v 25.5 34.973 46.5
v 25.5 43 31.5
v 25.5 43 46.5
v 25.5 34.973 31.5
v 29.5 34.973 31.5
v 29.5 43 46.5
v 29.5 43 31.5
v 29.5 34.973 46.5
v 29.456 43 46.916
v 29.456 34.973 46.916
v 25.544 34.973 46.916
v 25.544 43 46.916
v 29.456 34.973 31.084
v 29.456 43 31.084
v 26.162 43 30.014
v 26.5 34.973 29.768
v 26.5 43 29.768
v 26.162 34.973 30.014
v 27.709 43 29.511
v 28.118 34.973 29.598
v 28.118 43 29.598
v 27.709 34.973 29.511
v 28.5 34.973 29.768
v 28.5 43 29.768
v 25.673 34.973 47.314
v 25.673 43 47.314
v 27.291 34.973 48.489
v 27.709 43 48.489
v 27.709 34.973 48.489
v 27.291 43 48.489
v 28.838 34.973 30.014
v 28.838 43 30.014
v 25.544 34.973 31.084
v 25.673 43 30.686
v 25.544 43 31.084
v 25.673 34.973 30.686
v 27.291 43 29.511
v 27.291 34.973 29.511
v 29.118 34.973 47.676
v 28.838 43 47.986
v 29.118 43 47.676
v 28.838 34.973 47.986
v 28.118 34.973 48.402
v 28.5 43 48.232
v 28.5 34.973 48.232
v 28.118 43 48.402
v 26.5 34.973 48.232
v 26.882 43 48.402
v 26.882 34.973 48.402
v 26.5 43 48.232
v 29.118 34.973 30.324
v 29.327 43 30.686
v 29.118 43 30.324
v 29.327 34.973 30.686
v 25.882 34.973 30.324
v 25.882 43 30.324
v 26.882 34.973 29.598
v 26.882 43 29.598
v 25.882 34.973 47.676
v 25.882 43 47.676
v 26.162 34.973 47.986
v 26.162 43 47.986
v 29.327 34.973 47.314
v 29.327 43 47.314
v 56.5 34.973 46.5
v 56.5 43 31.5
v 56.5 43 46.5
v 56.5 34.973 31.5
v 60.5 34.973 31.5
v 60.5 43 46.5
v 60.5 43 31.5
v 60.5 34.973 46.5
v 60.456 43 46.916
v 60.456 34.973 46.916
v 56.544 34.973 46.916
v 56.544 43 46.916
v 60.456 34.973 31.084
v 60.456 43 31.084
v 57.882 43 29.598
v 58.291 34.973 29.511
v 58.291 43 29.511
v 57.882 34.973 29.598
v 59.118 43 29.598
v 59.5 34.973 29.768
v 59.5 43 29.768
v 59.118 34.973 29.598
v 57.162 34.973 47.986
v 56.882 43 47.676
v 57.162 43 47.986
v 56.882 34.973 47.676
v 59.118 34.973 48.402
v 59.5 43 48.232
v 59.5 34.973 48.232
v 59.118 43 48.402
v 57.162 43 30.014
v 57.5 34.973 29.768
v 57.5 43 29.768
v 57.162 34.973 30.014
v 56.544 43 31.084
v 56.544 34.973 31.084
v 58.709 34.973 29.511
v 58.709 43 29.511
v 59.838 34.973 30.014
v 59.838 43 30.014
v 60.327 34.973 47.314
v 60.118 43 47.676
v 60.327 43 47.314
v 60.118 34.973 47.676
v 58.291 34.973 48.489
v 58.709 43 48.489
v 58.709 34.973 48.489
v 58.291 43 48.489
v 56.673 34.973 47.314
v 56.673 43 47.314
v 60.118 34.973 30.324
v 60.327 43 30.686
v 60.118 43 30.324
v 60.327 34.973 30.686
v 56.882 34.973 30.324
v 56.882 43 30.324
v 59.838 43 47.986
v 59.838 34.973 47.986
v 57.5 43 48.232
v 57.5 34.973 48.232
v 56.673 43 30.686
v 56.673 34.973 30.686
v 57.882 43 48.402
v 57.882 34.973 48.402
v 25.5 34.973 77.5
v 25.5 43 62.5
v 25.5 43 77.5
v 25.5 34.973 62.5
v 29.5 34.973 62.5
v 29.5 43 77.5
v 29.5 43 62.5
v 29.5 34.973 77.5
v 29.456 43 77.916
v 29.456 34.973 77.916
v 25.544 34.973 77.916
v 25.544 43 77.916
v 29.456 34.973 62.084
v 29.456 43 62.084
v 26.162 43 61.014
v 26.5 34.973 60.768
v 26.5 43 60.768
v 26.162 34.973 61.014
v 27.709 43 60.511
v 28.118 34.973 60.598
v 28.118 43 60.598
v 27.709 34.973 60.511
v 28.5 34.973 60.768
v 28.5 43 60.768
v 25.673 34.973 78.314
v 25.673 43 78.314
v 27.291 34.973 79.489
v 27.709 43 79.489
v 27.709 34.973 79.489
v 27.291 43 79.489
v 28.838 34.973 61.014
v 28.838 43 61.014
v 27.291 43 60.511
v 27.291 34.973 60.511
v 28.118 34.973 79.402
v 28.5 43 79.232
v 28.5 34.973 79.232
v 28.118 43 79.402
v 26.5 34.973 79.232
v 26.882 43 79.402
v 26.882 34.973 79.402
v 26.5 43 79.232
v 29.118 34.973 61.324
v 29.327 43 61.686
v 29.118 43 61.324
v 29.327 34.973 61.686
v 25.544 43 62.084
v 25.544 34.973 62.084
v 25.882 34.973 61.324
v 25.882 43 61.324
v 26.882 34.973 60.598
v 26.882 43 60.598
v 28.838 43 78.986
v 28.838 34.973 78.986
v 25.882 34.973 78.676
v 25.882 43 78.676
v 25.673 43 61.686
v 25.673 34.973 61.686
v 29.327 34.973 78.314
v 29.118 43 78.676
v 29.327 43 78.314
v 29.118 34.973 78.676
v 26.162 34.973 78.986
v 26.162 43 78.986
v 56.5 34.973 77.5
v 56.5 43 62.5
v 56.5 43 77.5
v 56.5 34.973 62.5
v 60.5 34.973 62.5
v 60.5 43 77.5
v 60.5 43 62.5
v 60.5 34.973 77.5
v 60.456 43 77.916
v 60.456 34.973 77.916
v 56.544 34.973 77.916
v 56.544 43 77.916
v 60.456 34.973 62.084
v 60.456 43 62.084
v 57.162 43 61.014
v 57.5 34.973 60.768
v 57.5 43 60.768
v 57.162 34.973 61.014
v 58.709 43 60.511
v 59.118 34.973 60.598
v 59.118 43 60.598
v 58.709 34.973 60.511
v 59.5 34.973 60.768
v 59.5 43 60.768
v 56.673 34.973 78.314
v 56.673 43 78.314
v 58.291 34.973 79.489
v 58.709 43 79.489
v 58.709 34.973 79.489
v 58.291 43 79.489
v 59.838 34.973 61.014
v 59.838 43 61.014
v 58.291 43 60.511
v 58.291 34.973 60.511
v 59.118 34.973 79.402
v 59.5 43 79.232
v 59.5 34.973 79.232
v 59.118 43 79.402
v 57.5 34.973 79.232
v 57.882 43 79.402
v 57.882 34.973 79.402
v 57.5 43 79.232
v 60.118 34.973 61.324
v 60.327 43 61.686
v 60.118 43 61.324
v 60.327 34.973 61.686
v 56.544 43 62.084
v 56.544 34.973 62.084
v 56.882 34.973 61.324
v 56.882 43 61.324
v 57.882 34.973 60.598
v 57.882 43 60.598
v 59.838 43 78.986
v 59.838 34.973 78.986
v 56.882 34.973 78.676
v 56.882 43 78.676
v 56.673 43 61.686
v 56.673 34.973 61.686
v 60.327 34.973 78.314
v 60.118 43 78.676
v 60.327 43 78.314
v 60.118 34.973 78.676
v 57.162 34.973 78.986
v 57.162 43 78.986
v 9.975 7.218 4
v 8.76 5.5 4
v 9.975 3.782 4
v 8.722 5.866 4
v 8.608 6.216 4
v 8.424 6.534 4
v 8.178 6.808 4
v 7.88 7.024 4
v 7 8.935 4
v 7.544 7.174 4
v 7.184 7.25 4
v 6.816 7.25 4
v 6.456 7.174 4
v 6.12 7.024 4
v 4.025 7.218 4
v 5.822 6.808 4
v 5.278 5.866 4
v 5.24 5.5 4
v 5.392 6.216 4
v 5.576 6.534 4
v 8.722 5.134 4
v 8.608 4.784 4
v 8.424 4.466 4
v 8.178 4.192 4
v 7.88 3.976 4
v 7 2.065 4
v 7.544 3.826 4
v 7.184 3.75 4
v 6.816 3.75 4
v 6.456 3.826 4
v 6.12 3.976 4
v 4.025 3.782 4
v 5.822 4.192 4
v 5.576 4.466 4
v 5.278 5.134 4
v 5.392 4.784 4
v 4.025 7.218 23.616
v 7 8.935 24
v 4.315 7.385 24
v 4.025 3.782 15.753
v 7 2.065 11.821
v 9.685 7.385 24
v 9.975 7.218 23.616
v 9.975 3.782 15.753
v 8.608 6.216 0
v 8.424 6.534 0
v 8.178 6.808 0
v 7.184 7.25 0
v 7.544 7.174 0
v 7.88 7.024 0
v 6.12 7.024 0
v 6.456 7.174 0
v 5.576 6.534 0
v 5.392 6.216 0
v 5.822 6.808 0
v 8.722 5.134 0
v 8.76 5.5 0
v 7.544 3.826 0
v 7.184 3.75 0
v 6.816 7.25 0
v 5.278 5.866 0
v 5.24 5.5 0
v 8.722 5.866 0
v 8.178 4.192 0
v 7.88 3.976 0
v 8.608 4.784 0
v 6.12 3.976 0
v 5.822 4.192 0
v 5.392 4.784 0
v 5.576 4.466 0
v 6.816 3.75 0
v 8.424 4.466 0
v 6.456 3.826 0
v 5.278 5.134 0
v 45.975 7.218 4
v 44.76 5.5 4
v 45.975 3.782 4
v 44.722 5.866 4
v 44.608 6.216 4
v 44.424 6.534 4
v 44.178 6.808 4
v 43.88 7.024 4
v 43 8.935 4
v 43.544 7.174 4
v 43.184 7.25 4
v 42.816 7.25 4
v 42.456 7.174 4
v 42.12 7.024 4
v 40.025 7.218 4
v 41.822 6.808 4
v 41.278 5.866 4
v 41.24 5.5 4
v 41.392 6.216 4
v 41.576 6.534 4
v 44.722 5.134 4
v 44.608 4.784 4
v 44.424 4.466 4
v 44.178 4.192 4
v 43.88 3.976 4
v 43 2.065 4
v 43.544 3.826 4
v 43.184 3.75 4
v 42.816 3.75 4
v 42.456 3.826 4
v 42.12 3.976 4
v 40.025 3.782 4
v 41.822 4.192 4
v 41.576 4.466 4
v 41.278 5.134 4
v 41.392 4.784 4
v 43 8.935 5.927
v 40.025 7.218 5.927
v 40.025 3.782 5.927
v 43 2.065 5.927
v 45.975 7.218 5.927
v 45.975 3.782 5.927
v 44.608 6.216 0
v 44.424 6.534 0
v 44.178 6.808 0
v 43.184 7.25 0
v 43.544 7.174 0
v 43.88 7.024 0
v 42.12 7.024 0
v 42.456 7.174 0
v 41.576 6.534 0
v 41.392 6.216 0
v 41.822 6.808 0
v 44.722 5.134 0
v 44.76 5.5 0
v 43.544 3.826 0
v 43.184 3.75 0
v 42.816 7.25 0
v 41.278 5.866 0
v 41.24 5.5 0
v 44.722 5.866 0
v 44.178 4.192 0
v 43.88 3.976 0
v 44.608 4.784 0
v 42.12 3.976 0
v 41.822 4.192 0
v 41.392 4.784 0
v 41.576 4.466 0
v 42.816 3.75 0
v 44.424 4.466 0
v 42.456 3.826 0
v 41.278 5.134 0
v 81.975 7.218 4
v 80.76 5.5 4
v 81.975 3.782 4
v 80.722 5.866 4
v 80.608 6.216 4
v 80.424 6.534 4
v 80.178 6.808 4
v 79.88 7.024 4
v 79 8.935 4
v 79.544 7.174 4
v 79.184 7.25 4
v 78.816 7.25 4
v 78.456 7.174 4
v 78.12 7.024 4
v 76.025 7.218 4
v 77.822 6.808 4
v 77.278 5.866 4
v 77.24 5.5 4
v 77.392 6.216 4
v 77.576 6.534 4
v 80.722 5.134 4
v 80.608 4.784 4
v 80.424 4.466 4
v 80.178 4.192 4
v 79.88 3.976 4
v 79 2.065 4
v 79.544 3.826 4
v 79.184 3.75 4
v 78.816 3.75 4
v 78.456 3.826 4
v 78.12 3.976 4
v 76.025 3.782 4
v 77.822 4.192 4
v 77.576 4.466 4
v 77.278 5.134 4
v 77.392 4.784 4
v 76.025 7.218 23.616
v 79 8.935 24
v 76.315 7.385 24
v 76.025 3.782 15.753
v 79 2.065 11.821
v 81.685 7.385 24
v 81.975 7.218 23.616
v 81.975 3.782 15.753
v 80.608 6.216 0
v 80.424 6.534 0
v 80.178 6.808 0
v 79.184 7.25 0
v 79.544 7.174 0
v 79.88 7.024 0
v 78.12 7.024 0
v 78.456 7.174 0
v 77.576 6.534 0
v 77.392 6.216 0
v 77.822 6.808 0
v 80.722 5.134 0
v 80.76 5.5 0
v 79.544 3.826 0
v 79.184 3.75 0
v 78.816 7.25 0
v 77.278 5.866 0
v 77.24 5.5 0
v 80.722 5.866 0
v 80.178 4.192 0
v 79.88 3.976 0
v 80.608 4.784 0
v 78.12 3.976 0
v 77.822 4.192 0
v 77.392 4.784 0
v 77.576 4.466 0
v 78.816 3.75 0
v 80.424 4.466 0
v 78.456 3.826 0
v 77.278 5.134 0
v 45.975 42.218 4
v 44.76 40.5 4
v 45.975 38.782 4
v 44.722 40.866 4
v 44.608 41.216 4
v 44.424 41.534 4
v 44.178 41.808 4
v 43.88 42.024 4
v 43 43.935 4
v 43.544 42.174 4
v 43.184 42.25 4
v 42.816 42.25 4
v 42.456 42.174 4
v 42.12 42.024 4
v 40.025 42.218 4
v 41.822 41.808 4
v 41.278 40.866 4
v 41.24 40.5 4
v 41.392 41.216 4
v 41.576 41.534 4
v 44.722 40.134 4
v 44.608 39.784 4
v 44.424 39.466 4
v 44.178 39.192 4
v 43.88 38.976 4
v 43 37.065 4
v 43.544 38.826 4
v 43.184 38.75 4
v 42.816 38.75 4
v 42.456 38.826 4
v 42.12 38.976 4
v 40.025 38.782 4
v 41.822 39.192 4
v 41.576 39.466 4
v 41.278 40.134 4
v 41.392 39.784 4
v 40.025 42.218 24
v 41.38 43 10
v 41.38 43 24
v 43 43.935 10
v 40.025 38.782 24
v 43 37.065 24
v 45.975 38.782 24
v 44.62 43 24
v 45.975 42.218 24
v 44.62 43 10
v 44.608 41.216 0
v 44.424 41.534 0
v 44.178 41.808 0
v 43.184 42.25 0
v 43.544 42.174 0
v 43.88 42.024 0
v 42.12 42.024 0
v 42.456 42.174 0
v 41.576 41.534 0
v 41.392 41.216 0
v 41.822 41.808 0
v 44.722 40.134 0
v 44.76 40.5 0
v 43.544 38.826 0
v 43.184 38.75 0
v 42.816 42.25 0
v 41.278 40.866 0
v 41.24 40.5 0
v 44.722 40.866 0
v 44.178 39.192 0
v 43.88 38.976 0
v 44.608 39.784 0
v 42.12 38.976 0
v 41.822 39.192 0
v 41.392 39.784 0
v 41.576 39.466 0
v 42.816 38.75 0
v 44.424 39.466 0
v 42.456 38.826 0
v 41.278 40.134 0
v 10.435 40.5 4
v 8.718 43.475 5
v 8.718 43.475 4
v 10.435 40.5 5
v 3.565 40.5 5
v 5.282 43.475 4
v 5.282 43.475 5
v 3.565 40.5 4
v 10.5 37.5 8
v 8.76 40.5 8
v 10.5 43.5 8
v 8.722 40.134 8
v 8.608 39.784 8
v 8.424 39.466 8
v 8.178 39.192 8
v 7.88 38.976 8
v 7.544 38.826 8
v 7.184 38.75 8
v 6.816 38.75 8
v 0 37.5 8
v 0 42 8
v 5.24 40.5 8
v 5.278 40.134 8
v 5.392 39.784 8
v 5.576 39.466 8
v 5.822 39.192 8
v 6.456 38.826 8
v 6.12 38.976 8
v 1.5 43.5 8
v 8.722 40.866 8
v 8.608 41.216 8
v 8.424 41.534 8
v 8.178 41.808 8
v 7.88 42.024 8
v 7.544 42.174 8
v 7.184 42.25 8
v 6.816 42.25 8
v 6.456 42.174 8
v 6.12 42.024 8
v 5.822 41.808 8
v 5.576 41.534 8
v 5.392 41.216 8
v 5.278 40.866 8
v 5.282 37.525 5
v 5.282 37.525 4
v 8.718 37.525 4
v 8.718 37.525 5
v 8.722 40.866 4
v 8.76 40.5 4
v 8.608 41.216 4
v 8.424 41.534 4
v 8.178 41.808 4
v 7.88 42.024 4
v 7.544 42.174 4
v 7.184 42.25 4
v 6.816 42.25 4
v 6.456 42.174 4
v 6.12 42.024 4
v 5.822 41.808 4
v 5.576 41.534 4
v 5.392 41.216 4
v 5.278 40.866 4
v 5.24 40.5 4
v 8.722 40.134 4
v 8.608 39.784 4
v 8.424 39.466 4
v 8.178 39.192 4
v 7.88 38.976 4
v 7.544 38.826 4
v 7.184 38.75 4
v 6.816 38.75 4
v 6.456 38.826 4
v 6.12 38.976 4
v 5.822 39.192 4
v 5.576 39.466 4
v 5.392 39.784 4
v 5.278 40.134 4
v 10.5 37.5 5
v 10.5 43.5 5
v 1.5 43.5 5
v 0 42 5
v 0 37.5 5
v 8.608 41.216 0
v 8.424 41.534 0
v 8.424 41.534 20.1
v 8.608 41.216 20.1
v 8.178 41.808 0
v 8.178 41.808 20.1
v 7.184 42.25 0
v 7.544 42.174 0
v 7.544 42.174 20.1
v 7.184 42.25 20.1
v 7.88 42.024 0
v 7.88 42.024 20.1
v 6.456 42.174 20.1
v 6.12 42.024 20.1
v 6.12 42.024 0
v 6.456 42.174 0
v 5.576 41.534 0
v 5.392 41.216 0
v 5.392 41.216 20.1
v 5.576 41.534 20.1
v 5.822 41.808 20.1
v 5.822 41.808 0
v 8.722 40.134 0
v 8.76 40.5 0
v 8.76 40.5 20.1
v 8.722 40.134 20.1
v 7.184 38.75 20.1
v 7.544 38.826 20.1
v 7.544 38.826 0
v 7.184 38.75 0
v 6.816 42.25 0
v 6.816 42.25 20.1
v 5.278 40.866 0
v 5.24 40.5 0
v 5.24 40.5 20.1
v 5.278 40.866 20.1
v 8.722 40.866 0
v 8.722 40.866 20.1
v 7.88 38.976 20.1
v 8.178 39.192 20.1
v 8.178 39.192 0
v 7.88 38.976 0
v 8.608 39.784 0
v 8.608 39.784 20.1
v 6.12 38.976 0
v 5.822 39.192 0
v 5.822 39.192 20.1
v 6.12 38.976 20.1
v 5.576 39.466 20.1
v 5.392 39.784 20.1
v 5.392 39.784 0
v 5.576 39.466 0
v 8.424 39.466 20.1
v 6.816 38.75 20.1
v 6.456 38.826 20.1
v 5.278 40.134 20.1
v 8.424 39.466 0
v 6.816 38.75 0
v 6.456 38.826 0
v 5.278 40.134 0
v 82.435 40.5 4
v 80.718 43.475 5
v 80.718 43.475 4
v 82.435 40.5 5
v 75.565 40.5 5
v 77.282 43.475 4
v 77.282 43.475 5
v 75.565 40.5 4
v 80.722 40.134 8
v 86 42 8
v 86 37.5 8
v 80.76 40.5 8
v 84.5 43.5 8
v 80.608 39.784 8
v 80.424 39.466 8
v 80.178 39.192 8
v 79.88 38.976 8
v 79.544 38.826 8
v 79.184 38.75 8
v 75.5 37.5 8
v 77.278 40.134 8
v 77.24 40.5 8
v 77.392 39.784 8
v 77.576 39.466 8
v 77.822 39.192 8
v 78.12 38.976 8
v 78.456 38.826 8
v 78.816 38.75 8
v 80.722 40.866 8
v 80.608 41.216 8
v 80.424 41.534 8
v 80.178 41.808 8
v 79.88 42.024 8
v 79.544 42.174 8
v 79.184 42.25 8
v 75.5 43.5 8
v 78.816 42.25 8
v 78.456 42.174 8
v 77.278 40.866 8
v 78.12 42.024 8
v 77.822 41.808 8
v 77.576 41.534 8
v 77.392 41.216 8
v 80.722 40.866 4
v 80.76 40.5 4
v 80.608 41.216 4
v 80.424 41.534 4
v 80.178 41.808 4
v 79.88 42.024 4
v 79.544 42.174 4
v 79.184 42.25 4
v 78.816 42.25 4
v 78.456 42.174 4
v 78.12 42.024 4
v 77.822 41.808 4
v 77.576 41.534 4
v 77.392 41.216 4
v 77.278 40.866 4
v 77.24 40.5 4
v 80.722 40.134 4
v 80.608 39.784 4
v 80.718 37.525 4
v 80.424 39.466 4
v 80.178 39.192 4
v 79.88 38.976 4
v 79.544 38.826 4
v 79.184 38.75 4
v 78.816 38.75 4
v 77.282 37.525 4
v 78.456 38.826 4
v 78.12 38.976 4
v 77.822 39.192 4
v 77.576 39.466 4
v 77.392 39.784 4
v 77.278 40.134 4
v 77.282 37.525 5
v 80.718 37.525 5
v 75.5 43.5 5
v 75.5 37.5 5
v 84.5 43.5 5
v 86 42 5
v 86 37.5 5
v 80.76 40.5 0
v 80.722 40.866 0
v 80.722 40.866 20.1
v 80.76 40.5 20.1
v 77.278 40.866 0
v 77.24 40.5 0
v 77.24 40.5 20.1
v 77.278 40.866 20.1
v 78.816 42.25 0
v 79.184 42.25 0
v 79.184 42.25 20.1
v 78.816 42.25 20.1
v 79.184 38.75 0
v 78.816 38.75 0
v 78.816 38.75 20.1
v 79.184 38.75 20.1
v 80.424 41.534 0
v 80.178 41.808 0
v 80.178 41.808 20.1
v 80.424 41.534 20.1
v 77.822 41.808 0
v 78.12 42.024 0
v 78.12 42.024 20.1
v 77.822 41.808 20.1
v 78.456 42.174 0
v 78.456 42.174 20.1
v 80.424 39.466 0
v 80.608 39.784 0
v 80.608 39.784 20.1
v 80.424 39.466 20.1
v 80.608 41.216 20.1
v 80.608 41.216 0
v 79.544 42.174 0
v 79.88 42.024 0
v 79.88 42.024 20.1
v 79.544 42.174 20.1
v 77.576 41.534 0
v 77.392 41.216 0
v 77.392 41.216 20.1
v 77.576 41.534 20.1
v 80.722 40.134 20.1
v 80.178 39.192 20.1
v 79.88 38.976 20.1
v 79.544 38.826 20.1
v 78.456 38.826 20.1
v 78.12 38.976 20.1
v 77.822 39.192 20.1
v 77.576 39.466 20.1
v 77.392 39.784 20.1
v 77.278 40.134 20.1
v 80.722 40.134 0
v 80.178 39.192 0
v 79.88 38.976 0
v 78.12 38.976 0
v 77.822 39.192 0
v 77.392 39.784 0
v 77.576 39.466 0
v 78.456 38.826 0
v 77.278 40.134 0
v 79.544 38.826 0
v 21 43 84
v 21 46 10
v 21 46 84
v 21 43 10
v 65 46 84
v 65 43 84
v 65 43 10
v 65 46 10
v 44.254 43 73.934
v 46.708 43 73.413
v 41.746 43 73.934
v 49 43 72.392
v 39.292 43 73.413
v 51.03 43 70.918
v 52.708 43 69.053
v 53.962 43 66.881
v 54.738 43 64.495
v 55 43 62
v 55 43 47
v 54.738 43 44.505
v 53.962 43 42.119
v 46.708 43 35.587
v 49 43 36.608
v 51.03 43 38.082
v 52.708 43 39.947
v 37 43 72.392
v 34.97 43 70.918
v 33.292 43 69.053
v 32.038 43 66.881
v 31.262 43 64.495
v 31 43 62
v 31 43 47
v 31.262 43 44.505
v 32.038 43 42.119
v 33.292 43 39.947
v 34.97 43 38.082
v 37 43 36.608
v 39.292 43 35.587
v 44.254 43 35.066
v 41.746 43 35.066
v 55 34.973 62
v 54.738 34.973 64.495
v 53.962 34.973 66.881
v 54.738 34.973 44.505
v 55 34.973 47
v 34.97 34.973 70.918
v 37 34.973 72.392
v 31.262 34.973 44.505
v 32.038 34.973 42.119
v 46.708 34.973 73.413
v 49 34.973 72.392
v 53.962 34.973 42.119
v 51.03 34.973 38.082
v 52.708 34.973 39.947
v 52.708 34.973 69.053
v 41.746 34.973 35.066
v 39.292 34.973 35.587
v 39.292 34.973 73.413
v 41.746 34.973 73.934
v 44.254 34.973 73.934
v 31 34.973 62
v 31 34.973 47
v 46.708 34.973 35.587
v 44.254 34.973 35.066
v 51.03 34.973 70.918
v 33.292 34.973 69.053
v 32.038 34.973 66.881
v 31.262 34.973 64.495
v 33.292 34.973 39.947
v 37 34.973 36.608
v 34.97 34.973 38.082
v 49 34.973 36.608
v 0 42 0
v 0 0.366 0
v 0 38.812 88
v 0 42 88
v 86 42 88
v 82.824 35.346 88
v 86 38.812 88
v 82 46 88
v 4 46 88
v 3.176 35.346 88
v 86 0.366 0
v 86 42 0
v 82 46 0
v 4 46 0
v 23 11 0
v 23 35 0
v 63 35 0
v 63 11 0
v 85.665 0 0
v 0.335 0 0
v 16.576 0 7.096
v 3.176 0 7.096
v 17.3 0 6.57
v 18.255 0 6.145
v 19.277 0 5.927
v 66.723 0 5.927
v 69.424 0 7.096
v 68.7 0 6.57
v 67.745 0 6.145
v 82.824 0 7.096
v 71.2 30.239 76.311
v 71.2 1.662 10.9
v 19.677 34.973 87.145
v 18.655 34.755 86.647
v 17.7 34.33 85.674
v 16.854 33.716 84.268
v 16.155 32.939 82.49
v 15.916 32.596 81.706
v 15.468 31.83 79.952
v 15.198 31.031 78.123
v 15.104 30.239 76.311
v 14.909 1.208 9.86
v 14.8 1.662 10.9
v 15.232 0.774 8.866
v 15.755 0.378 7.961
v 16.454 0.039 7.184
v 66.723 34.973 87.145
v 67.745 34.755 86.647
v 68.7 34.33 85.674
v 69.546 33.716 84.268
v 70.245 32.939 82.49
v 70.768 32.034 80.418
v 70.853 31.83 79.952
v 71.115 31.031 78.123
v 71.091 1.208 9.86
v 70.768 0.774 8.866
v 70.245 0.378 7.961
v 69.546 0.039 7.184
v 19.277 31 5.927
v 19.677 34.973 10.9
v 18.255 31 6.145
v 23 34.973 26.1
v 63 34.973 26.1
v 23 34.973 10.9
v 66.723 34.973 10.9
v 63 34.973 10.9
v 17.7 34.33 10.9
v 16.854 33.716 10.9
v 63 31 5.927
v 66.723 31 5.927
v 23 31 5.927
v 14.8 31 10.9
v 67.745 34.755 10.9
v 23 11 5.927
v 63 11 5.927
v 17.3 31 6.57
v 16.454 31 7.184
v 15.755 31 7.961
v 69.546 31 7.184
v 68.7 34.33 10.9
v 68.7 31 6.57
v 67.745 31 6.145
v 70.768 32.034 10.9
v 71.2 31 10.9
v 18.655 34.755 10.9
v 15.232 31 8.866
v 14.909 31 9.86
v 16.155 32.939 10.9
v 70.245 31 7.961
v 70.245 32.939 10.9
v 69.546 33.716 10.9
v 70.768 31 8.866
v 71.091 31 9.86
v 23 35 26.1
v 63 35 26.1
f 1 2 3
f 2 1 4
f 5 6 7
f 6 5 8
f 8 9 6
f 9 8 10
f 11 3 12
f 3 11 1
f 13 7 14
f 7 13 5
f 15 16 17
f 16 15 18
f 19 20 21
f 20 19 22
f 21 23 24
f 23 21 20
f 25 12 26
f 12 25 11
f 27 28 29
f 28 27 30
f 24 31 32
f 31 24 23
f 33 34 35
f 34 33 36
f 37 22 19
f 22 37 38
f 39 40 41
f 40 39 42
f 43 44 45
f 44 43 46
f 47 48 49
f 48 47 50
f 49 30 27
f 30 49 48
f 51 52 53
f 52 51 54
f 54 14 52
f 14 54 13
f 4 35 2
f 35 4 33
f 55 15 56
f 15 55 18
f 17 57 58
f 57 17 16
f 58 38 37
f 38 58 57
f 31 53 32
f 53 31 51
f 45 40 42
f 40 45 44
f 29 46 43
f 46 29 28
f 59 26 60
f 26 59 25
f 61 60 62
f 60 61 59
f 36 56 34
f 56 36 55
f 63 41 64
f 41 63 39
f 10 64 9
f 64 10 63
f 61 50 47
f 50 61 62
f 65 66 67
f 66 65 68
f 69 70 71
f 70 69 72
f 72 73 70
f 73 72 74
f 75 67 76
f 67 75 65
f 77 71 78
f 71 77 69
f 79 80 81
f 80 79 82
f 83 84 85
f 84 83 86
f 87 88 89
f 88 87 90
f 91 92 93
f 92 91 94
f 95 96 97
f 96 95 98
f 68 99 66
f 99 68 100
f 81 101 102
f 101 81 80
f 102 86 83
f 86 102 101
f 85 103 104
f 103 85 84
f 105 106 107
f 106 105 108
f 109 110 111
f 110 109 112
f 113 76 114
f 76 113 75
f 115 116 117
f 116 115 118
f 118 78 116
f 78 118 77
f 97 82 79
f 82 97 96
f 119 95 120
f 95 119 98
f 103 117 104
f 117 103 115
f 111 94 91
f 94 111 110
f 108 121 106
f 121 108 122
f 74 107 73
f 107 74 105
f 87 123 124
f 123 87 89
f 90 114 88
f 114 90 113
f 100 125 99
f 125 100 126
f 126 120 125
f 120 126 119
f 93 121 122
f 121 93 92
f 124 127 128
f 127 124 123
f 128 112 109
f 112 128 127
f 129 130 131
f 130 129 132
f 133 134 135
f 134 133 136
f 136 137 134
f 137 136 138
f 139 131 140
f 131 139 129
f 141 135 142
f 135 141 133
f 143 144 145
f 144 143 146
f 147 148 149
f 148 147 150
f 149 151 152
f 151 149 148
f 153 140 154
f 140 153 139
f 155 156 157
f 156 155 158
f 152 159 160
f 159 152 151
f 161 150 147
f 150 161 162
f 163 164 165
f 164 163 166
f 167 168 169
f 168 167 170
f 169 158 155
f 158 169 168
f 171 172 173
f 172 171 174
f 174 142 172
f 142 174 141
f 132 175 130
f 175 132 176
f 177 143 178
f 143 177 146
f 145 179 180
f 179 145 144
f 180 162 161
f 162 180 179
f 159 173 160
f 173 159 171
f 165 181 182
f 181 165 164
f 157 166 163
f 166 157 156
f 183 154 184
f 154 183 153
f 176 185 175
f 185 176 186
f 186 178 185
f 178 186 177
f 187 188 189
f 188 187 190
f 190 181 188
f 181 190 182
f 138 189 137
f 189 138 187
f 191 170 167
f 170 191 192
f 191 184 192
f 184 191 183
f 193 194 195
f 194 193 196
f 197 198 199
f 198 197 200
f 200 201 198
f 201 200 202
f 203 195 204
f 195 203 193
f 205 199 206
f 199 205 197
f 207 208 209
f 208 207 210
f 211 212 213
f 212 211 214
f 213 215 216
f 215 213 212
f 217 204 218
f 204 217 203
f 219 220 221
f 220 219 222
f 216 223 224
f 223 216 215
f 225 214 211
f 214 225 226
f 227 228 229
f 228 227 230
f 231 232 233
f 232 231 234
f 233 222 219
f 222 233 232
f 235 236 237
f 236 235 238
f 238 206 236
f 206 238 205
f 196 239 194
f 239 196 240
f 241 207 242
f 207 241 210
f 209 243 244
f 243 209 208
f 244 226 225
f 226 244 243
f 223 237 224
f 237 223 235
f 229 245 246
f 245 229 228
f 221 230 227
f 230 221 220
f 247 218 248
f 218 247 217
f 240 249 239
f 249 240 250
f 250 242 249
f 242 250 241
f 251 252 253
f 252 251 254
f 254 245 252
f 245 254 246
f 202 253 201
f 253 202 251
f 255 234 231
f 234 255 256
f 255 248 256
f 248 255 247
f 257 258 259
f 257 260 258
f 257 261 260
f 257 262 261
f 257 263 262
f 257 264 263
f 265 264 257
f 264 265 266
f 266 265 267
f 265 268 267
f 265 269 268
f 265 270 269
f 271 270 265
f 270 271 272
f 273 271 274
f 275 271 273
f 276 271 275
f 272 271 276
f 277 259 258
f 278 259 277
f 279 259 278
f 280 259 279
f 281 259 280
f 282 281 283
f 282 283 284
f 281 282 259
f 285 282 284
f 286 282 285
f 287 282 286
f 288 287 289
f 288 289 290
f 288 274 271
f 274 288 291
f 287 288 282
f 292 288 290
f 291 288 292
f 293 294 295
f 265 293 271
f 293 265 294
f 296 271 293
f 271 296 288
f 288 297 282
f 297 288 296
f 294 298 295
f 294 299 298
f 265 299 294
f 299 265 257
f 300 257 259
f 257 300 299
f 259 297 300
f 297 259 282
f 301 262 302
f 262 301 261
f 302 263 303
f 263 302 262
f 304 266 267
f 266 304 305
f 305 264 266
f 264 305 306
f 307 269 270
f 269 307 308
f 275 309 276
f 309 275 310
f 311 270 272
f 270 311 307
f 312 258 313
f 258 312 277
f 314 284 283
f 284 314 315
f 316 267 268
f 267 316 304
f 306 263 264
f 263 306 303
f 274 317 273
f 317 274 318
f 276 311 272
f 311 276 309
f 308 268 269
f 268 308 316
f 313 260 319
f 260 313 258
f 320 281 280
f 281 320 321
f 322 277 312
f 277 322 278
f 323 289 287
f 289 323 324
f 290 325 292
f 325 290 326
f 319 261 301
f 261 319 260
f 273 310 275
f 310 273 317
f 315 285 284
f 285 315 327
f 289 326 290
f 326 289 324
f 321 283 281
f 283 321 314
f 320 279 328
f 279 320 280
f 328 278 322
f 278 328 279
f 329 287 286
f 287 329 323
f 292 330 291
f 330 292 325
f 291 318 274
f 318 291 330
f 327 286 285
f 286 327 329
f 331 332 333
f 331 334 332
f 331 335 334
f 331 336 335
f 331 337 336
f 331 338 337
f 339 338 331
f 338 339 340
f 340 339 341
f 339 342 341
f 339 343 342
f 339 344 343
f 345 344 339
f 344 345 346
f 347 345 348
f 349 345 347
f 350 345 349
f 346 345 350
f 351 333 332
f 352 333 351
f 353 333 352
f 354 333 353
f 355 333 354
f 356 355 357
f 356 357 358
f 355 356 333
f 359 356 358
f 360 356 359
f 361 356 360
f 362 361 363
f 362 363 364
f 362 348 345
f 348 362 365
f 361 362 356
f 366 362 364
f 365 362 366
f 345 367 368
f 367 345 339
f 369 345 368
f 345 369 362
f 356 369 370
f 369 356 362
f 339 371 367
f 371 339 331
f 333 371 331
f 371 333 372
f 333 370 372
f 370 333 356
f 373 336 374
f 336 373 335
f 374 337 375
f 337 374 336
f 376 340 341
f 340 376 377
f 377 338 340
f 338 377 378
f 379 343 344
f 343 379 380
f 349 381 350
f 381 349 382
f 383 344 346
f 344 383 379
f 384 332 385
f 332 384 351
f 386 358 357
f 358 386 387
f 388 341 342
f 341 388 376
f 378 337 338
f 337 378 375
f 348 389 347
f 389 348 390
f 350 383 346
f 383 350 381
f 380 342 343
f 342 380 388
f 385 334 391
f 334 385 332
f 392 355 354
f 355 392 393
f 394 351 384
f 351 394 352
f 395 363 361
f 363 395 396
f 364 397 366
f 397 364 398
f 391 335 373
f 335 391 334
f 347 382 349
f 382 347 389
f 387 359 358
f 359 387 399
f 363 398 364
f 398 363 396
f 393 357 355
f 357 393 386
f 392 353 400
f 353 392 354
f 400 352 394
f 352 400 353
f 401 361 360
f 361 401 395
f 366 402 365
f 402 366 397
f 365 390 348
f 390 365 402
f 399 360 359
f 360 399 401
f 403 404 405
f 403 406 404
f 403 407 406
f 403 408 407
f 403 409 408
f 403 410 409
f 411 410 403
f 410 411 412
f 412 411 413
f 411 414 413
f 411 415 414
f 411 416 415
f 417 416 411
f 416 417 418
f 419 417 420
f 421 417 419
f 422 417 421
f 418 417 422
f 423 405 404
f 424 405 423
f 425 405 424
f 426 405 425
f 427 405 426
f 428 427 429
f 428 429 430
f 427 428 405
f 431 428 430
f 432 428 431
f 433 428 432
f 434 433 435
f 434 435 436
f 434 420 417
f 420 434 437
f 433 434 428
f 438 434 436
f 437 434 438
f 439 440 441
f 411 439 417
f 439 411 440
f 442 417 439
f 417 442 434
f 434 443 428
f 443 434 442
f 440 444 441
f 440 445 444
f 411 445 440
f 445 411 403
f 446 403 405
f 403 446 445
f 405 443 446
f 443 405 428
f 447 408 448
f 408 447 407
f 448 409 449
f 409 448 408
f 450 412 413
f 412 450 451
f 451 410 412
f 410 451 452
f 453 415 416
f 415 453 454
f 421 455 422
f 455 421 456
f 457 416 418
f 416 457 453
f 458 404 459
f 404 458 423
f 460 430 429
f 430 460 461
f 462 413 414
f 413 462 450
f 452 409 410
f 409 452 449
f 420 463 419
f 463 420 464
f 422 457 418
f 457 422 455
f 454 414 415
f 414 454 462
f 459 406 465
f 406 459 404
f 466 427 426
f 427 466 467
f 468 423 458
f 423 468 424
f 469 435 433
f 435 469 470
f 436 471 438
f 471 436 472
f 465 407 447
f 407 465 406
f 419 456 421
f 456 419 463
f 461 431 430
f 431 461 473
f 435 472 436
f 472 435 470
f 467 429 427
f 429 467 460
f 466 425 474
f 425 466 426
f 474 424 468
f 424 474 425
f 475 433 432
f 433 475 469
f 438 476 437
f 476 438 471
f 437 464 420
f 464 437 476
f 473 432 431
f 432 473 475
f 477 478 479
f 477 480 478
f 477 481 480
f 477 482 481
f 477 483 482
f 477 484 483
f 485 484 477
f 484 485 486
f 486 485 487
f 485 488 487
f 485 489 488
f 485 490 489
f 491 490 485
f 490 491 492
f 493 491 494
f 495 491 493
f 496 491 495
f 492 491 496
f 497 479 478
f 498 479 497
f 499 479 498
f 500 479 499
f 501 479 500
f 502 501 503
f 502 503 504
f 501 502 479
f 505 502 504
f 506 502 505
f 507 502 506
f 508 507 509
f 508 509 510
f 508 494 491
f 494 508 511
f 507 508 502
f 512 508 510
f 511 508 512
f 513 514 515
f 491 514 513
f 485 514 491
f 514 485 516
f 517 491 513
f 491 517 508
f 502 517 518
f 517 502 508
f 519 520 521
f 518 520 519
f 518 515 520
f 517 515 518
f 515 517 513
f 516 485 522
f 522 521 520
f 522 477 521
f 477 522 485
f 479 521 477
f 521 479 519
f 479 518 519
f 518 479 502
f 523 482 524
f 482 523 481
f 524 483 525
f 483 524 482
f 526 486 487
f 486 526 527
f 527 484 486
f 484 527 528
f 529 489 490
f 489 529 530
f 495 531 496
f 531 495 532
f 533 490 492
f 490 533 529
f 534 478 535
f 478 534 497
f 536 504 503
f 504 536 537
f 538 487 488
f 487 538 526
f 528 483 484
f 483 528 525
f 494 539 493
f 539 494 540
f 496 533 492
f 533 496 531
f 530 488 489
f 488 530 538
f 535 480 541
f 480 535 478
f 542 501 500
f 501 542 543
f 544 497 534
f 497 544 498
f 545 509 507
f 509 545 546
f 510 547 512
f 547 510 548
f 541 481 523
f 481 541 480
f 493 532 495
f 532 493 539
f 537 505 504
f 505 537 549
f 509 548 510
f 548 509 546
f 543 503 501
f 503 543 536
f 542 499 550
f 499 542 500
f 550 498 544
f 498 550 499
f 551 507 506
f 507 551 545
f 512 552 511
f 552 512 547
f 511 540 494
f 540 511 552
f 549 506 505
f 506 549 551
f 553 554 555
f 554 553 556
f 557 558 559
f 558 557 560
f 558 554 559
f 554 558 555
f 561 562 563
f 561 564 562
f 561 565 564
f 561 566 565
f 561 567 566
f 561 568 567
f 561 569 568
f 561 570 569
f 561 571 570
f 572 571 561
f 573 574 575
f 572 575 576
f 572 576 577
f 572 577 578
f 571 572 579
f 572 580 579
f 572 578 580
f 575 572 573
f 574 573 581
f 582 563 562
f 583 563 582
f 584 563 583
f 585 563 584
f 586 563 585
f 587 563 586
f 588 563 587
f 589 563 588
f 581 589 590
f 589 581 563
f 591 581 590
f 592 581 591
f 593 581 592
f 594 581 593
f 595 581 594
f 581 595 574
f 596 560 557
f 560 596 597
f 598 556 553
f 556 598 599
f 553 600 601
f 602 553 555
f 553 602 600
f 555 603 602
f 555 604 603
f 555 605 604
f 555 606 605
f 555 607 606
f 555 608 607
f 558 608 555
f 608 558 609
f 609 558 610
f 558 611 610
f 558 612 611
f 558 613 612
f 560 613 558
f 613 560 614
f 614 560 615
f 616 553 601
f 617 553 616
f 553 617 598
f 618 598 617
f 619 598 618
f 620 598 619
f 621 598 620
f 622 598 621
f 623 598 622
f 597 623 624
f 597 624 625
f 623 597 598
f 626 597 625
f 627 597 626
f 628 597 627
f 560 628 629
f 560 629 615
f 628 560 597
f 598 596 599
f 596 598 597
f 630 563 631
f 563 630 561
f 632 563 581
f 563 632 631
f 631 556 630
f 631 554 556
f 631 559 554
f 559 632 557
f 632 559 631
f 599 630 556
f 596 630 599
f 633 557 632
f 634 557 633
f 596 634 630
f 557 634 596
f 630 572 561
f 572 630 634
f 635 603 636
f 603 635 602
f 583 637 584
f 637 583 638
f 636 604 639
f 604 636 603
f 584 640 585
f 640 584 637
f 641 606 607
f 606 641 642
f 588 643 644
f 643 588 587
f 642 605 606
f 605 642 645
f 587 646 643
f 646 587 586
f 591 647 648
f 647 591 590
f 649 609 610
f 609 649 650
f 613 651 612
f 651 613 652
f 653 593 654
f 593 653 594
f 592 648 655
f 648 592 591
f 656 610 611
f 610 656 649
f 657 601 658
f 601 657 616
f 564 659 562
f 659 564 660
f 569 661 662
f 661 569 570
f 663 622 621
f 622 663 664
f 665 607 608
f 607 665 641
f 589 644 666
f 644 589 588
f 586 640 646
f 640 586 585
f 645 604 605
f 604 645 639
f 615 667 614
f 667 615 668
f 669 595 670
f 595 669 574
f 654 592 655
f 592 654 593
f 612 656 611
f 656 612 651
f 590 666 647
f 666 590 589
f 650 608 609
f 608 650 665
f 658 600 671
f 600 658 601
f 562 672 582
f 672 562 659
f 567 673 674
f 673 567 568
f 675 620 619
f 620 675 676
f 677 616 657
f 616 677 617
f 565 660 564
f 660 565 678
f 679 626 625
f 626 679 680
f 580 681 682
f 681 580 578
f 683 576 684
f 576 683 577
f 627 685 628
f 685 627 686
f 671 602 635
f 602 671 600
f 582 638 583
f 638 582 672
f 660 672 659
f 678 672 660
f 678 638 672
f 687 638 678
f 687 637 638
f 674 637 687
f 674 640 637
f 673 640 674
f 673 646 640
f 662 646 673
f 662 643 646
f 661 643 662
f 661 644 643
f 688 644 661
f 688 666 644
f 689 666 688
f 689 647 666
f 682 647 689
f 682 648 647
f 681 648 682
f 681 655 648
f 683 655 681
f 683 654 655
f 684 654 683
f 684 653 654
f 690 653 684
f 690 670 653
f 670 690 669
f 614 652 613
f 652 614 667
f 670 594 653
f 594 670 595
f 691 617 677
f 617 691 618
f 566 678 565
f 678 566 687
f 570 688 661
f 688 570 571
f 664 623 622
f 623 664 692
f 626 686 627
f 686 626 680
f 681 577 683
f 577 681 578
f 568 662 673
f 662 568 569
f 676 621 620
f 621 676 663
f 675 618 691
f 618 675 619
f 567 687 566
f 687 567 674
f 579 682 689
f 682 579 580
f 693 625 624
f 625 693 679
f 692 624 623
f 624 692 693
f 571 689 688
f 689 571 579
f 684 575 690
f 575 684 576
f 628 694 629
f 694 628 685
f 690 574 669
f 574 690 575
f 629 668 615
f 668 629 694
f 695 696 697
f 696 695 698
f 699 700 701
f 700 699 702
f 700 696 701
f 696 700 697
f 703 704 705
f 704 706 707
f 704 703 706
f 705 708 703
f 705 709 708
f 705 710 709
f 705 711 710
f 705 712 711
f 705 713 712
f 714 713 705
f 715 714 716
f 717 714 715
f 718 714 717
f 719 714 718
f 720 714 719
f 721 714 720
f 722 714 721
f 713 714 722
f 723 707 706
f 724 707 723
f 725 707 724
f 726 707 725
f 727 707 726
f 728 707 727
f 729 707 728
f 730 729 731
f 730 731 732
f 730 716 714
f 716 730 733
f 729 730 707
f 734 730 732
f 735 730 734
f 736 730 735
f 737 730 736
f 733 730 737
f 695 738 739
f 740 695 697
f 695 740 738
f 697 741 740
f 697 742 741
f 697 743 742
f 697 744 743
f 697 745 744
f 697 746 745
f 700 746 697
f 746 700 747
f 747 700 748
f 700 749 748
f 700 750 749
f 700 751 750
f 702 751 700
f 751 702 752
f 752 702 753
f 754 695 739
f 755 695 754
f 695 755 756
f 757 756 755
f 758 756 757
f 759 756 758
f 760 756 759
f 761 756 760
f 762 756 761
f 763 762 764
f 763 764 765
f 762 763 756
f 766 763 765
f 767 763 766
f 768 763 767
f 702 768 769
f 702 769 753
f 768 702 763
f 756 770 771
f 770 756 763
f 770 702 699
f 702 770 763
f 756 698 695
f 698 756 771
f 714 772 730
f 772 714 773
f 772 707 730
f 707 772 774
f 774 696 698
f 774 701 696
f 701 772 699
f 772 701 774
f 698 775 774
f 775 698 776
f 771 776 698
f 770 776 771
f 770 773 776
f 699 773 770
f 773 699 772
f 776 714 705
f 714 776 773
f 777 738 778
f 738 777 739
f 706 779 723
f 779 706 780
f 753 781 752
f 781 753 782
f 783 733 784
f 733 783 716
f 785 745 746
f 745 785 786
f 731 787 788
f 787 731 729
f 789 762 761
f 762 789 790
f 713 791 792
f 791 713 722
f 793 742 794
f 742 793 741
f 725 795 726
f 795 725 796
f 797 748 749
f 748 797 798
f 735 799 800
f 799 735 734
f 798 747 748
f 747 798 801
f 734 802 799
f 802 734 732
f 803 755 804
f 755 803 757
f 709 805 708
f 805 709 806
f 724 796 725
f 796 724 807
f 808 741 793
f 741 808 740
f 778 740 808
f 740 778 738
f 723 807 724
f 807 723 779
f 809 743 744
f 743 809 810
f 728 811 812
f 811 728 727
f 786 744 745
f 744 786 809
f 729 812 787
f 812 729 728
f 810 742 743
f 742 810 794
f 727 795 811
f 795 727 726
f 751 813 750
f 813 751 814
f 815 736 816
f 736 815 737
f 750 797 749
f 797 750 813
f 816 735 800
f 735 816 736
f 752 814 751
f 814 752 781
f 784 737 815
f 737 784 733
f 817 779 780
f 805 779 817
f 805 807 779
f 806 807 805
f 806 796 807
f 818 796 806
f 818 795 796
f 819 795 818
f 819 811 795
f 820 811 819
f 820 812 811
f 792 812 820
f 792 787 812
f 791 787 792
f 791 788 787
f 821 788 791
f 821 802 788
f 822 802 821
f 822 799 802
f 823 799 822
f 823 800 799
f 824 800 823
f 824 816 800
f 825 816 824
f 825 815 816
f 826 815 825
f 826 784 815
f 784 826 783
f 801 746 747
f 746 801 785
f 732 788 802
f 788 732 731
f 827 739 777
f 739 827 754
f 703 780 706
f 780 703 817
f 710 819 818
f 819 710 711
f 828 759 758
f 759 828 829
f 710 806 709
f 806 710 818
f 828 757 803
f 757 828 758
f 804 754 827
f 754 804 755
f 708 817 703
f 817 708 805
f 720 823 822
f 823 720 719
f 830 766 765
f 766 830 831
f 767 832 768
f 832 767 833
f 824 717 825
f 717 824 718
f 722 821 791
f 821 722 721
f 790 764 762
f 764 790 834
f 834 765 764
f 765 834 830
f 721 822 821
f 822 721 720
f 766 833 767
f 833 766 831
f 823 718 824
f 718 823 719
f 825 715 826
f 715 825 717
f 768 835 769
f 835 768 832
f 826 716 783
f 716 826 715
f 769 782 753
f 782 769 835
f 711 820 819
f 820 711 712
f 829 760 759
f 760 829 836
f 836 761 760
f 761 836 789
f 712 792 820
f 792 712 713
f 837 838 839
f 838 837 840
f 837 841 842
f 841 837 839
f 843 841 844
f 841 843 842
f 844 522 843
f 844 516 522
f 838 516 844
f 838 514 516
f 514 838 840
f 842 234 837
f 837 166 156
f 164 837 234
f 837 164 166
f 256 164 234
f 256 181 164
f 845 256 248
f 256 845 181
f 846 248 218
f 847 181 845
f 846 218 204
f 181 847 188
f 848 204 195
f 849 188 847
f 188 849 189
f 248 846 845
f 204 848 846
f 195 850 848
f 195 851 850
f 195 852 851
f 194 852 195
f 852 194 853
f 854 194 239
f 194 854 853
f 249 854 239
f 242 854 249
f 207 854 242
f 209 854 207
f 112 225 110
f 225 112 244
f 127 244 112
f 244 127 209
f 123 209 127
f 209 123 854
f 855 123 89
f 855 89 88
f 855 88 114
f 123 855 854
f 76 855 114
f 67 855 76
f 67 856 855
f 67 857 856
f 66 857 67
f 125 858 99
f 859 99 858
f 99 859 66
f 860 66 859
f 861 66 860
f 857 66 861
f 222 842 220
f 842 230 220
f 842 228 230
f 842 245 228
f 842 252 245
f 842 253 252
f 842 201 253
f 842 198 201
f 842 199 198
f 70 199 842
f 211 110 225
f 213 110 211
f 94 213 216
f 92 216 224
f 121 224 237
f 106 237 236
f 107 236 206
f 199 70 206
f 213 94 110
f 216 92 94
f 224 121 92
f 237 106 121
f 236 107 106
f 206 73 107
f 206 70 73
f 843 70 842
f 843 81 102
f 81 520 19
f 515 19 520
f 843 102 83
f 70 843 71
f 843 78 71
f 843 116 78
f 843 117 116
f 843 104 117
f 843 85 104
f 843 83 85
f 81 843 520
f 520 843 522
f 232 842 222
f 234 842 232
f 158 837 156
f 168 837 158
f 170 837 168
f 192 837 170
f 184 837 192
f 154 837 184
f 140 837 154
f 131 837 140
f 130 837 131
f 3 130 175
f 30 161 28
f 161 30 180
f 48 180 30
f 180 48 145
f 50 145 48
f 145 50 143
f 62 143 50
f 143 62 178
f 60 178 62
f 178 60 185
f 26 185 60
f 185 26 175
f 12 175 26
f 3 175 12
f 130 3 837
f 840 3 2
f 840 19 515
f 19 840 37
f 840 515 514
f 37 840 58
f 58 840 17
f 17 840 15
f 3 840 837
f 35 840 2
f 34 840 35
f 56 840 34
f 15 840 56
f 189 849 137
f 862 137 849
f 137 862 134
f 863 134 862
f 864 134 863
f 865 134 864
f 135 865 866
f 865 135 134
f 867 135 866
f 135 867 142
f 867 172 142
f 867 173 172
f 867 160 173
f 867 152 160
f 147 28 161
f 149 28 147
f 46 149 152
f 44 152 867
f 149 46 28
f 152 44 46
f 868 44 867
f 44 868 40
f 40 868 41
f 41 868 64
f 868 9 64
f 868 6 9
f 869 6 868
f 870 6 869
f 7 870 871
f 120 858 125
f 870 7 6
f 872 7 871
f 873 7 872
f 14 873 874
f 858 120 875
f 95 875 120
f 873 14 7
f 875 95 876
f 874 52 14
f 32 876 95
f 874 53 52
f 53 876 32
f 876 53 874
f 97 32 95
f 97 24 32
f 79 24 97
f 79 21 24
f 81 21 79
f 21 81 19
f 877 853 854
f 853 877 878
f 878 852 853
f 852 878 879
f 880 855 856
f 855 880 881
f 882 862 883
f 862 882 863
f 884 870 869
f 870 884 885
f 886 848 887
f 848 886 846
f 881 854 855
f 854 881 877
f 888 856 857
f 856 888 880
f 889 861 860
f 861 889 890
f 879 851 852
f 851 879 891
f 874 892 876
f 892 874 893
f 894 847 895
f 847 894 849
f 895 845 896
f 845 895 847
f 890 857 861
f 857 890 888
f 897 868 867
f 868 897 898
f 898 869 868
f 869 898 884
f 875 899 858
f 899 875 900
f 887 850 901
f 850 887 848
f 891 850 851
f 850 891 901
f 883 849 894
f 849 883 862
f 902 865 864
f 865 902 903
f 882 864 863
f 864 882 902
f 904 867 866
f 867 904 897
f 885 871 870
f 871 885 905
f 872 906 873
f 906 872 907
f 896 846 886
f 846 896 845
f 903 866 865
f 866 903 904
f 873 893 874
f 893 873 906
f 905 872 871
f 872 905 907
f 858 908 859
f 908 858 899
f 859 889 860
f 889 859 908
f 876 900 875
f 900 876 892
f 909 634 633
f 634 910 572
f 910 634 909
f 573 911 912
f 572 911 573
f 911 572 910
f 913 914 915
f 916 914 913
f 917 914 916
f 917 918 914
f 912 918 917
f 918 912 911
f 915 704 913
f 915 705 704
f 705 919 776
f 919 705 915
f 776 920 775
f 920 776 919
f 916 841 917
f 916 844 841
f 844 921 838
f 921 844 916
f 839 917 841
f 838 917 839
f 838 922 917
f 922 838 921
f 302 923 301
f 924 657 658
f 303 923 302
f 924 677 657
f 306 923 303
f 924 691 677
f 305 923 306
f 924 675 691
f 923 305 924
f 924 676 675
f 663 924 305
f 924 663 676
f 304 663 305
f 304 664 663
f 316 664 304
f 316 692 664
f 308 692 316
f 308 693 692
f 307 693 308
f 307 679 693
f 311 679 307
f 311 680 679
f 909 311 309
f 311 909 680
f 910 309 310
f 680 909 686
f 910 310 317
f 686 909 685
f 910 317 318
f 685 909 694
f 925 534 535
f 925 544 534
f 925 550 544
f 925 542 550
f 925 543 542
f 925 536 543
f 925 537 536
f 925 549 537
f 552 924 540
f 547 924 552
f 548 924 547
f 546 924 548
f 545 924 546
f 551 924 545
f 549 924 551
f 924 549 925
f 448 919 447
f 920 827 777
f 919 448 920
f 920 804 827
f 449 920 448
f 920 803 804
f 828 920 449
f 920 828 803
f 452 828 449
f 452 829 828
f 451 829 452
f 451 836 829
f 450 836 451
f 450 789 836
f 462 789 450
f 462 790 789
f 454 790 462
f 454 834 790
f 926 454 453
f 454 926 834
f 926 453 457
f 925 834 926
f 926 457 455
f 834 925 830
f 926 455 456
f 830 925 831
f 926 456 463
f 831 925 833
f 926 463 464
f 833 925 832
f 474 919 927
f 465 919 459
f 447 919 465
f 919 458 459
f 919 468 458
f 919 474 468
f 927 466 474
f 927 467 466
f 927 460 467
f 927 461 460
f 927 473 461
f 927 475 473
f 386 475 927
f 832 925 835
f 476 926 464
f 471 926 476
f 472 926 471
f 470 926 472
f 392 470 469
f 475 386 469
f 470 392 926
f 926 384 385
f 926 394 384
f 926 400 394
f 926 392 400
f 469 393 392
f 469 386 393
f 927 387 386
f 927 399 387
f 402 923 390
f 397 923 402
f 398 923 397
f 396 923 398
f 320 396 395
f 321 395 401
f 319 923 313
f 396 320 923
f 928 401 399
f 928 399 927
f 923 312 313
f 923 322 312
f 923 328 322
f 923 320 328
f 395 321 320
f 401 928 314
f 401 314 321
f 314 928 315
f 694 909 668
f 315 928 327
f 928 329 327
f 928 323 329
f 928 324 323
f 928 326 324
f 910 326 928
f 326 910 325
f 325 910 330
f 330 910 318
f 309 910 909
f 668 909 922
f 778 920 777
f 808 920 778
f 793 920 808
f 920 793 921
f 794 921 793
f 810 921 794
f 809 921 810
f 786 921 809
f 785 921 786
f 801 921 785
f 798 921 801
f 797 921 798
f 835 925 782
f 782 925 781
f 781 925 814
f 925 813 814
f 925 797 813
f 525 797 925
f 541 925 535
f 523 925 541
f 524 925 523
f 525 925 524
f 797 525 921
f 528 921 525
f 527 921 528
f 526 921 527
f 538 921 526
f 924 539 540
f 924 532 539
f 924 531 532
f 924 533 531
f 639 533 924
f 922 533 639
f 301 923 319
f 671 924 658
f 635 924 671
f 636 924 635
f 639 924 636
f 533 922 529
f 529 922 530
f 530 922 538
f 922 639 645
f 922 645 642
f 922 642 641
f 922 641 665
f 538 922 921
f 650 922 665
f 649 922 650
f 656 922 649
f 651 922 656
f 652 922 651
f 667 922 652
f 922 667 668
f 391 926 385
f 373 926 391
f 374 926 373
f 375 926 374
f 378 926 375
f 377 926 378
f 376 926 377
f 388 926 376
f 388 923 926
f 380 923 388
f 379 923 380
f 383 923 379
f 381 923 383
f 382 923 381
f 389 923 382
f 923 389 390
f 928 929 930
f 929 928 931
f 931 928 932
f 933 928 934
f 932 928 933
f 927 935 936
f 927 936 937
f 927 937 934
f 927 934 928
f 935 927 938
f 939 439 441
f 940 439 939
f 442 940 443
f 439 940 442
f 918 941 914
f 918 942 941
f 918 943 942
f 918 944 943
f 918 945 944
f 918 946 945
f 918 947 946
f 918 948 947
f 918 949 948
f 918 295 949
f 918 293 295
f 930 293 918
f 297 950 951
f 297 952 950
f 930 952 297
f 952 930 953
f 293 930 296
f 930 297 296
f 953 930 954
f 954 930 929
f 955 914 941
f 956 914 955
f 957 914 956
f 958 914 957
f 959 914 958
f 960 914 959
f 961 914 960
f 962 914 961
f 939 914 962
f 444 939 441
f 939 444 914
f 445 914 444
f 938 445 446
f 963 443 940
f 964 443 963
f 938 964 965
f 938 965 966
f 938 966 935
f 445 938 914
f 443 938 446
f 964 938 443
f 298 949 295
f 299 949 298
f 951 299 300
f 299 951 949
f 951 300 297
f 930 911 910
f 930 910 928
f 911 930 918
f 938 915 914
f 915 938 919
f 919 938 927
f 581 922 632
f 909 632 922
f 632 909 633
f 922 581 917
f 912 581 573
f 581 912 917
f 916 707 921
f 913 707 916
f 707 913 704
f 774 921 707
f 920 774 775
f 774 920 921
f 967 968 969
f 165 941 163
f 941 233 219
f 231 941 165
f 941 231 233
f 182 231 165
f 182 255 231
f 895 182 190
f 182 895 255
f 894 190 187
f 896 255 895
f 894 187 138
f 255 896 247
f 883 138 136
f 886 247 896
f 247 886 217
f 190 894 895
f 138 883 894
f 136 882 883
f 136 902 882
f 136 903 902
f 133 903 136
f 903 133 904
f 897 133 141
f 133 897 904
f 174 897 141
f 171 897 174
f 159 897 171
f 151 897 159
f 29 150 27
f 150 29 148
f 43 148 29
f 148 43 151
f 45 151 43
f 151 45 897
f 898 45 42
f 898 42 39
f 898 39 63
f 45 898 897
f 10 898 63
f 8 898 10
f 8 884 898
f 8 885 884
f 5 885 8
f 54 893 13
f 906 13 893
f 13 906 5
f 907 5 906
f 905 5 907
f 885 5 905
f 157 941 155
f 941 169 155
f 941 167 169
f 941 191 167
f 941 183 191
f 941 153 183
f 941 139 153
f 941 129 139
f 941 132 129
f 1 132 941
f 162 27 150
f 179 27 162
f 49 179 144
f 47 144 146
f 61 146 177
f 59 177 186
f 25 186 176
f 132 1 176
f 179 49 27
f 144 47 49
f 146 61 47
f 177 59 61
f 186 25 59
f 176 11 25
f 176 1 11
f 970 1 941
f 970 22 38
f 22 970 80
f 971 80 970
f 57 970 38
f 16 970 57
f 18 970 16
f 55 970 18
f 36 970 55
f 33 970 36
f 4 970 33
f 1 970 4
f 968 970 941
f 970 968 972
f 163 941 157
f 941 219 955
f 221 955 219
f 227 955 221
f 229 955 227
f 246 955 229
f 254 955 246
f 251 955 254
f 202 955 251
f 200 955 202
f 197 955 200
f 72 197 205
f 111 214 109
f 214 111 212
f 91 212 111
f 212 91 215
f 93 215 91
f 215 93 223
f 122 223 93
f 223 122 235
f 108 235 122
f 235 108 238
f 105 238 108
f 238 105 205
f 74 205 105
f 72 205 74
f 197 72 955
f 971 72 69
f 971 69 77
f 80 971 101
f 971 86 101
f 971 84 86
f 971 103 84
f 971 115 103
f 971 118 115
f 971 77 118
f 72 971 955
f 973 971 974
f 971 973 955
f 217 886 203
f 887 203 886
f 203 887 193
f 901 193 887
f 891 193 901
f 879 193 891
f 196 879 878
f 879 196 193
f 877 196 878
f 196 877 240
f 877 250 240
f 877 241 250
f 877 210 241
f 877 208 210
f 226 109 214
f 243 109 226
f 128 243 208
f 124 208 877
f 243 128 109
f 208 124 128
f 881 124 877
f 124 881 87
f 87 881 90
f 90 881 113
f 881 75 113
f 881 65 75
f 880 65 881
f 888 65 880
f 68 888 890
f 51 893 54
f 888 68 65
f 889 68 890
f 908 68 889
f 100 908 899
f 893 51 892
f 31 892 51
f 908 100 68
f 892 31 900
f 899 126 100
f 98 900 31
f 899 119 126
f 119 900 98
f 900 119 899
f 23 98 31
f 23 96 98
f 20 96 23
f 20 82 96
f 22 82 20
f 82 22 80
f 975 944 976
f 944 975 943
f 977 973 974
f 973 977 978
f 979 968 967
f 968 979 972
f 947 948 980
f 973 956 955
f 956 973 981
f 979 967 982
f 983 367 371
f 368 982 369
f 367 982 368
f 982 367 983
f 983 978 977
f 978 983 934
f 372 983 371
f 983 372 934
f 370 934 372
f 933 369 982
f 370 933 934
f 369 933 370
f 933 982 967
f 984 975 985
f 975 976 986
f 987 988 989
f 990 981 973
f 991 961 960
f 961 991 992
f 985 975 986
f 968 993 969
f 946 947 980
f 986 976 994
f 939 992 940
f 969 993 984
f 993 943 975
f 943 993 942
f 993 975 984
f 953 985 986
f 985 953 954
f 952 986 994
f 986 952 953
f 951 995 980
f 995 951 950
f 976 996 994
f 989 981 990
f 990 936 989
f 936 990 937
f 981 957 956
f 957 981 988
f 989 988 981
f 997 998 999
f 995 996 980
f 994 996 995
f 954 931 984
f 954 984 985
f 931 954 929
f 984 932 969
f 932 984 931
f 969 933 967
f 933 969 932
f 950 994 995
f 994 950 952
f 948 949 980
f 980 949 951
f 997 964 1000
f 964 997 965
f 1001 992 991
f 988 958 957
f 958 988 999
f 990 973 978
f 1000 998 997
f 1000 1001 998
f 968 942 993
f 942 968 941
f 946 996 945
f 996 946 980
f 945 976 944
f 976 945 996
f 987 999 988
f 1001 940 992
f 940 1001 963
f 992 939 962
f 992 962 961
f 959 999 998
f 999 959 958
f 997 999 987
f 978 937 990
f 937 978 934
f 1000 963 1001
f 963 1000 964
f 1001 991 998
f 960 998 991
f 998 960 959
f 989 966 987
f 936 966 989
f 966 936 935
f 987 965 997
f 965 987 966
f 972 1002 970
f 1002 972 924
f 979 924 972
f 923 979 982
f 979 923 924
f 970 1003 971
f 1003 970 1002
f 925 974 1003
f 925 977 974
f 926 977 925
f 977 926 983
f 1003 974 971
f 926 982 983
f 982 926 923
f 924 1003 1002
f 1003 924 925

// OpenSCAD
//!import("Motor Mount NEMA17.STL");
epsilon = 0.1;

// to lengthen adjust these two:
extra = 15; // 15
deg = 4; // 4

//-------------
length = 86;
depth = 46;
height = 73+extra;
degrees = 27.6-deg; 


nema17_holder();

module nema17_holder() {

  difference() {

    // main box
    cube([length,depth,height]);   
   
    // skewed box
    translate([-epsilon,-3.1,0]) rotate([90-degrees,0,0]) cube([length+2*epsilon,length*2,depth+10]);    
    
    // skewed chamfer
    translate([0,-30.5,0]) rotate([-degrees,0,0]) rotate([0,0,45]) cube([20,20,length+30]);   
    // skewed chamfer
    translate([length,-30.5,0]) rotate([-degrees,0,0]) rotate([0,0,45]) cube([20,20,length+30]);      
    
    // straight chamfer
    translate([0,depth-4,-epsilon]) rotate([0,0,45]) cube([20,20,length+30]);   
    
    // straight chamfer
    translate([length,depth-4,-epsilon]) rotate([0,0,45]) cube([20,20,length+30]);   
    
    // cutout a rounded shape
    hull() {
        //left
        translate([20-2*epsilon,depth-11-deg,11-epsilon]) rotate([90,0,0]) cylinder(d=10, h=depth-11+epsilon, $fn=30, center=false);

        translate([20+2*epsilon,depth-16,11-epsilon]) rotate([0,0,0]) cylinder(d=10, h=86, $fn = 30, center=false);

        // right
        translate([length-20+2*epsilon,depth-11-deg,11-epsilon]) rotate([90,0,0]) cylinder(d=10, h=depth-11+epsilon, $fn=30, center=false);

        translate([length-20+2*epsilon,depth-16,11-epsilon]) rotate([0,0,0]) cylinder(d=10, h=86, $fn=30, center=false);    
    }

    // window
    win_length = 40;
    translate([length/2-win_length/2,11,-epsilon]) rotate([0,0,0]) cube([win_length,depth-22,6+2*epsilon+20]); 

    // screw slots
    union() {
        // indented back plate
        translate([21,depth-3,10]) cube([length-2*21,3+epsilon,height-14]);

        // screw slots
        translate([length/2-15.5,depth-3,16.5+extra]) {
            screw_slot(0, 15, 0);
            screw_slot(31, 15, 0);            
            screw_slot(0, 15, 31);
            screw_slot(31, 15, 31);
        }
    
        // motor hole
        translate([length/2,depth-3,47+extra]) motor_hole(length=15, thickness=8);

        // front nut and screw slots
        translate([7,5.5,0]) hex_screw_hole(screw_dia=3, flats_dia=5.5, nut_height=20, screw_height=4, clearance=0.26);

        translate([length/2,5.5,0]) hex_screw_hole(screw_dia=3, flats_dia=5.5, nut_height=20, screw_height=4, clearance=0.26);

        translate([length-7,5.5,0]) hex_screw_hole(screw_dia=3, flats_dia=5.5, nut_height=20, screw_height=4, clearance=0.26);

        // back nut and screw slots
        translate([length/2,depth-5.5,0]) hex_screw_hole(screw_dia=3, flats_dia=5.5, nut_height=20, screw_height=4, clearance=0.26);

        // inner screw slots
        translate([7,depth-5.5,0]) inner_hex_screw_hole(screw_dia=3, flats_dia=5.5, nut_height=4, screw_height=20, clearance=0.26);

        translate([length-7,depth-5.5,0]) inner_hex_screw_hole(screw_dia=3, flats_dia=5.5, nut_height=4, screw_height=20, clearance=0.26, flip=true);     
    }
  }
}

module screw_slot(distx=0, disty=0, distz=0, thickness=8) {
    hull() {
        translate([distx,epsilon,distz]) rotate([90,0,0]) cylinder(d=4, h=thickness+2*epsilon, $fn=30, center=false);

        translate([distx,epsilon,distz+disty]) rotate([90,0,0]) cylinder(d=4, h=thickness+2*epsilon, $fn=30, center=false);
    }
}

module motor_hole(length=15, thickness=8) {
    hull() {
        translate([0,epsilon,0]) rotate([90,0,0]) cylinder(d=24, h=thickness+2*epsilon, $fn=30, center=false);
                
        translate([0,epsilon,-length]) rotate([90,0,0]) cylinder(d=24, h=thickness+2*epsilon, $fn=30, center=false);        
    }
}

module hex_screw_hole(screw_dia = 3, flats_dia = 5.5, nut_height = 10, screw_height = 4, clearance = 0.05) {
    
    //flats_dia = 5.5; // M3 nut
    //flats_dia = 6.0; // M3.5 nut
    //flats_dia = 7.0; // M4 nut
    //flats_dia = 8.0; // M5 nut
    
    //clearance = 0.05; // perfect fit for a hex nut?

    num_sides = 6;
    hex_rad = flats_dia / 2 / cos(180 / num_sides);
    
    // nut
    translate([0,0,screw_height]) rotate([0,0,90]) cylinder(r = hex_rad + clearance, $fn= num_sides, h=nut_height);  
    
    // screw
    translate([0,0,-epsilon]) cylinder(r = screw_dia / 2 + clearance, $fn= 30, h=screw_height+2*epsilon);
}

module inner_hex_screw_hole(screw_dia = 3, flats_dia = 5.5, nut_height = 10, screw_height = 4, clearance = 0.05, flip=false) {

    num_sides = 6;
    hex_rad = flats_dia / 2 / cos(180 / num_sides);

    // nut
    translate([0,0,4]) cylinder(r = hex_rad + clearance, $fn= num_sides, h=nut_height);  
    
    // container box
    cont_length = 12;
    if (flip) {
        translate([-3.5,-3,5]) cube([cont_length,6,3]);
    } else {    
        translate([3.5-cont_length,-3,5]) cube([cont_length,6,3]);
    }
    
    // screw
    translate([0,0,-epsilon]) cylinder(r = screw_dia / 2 + clearance, $fn= 30, h=screw_height+2*epsilon); 
}
